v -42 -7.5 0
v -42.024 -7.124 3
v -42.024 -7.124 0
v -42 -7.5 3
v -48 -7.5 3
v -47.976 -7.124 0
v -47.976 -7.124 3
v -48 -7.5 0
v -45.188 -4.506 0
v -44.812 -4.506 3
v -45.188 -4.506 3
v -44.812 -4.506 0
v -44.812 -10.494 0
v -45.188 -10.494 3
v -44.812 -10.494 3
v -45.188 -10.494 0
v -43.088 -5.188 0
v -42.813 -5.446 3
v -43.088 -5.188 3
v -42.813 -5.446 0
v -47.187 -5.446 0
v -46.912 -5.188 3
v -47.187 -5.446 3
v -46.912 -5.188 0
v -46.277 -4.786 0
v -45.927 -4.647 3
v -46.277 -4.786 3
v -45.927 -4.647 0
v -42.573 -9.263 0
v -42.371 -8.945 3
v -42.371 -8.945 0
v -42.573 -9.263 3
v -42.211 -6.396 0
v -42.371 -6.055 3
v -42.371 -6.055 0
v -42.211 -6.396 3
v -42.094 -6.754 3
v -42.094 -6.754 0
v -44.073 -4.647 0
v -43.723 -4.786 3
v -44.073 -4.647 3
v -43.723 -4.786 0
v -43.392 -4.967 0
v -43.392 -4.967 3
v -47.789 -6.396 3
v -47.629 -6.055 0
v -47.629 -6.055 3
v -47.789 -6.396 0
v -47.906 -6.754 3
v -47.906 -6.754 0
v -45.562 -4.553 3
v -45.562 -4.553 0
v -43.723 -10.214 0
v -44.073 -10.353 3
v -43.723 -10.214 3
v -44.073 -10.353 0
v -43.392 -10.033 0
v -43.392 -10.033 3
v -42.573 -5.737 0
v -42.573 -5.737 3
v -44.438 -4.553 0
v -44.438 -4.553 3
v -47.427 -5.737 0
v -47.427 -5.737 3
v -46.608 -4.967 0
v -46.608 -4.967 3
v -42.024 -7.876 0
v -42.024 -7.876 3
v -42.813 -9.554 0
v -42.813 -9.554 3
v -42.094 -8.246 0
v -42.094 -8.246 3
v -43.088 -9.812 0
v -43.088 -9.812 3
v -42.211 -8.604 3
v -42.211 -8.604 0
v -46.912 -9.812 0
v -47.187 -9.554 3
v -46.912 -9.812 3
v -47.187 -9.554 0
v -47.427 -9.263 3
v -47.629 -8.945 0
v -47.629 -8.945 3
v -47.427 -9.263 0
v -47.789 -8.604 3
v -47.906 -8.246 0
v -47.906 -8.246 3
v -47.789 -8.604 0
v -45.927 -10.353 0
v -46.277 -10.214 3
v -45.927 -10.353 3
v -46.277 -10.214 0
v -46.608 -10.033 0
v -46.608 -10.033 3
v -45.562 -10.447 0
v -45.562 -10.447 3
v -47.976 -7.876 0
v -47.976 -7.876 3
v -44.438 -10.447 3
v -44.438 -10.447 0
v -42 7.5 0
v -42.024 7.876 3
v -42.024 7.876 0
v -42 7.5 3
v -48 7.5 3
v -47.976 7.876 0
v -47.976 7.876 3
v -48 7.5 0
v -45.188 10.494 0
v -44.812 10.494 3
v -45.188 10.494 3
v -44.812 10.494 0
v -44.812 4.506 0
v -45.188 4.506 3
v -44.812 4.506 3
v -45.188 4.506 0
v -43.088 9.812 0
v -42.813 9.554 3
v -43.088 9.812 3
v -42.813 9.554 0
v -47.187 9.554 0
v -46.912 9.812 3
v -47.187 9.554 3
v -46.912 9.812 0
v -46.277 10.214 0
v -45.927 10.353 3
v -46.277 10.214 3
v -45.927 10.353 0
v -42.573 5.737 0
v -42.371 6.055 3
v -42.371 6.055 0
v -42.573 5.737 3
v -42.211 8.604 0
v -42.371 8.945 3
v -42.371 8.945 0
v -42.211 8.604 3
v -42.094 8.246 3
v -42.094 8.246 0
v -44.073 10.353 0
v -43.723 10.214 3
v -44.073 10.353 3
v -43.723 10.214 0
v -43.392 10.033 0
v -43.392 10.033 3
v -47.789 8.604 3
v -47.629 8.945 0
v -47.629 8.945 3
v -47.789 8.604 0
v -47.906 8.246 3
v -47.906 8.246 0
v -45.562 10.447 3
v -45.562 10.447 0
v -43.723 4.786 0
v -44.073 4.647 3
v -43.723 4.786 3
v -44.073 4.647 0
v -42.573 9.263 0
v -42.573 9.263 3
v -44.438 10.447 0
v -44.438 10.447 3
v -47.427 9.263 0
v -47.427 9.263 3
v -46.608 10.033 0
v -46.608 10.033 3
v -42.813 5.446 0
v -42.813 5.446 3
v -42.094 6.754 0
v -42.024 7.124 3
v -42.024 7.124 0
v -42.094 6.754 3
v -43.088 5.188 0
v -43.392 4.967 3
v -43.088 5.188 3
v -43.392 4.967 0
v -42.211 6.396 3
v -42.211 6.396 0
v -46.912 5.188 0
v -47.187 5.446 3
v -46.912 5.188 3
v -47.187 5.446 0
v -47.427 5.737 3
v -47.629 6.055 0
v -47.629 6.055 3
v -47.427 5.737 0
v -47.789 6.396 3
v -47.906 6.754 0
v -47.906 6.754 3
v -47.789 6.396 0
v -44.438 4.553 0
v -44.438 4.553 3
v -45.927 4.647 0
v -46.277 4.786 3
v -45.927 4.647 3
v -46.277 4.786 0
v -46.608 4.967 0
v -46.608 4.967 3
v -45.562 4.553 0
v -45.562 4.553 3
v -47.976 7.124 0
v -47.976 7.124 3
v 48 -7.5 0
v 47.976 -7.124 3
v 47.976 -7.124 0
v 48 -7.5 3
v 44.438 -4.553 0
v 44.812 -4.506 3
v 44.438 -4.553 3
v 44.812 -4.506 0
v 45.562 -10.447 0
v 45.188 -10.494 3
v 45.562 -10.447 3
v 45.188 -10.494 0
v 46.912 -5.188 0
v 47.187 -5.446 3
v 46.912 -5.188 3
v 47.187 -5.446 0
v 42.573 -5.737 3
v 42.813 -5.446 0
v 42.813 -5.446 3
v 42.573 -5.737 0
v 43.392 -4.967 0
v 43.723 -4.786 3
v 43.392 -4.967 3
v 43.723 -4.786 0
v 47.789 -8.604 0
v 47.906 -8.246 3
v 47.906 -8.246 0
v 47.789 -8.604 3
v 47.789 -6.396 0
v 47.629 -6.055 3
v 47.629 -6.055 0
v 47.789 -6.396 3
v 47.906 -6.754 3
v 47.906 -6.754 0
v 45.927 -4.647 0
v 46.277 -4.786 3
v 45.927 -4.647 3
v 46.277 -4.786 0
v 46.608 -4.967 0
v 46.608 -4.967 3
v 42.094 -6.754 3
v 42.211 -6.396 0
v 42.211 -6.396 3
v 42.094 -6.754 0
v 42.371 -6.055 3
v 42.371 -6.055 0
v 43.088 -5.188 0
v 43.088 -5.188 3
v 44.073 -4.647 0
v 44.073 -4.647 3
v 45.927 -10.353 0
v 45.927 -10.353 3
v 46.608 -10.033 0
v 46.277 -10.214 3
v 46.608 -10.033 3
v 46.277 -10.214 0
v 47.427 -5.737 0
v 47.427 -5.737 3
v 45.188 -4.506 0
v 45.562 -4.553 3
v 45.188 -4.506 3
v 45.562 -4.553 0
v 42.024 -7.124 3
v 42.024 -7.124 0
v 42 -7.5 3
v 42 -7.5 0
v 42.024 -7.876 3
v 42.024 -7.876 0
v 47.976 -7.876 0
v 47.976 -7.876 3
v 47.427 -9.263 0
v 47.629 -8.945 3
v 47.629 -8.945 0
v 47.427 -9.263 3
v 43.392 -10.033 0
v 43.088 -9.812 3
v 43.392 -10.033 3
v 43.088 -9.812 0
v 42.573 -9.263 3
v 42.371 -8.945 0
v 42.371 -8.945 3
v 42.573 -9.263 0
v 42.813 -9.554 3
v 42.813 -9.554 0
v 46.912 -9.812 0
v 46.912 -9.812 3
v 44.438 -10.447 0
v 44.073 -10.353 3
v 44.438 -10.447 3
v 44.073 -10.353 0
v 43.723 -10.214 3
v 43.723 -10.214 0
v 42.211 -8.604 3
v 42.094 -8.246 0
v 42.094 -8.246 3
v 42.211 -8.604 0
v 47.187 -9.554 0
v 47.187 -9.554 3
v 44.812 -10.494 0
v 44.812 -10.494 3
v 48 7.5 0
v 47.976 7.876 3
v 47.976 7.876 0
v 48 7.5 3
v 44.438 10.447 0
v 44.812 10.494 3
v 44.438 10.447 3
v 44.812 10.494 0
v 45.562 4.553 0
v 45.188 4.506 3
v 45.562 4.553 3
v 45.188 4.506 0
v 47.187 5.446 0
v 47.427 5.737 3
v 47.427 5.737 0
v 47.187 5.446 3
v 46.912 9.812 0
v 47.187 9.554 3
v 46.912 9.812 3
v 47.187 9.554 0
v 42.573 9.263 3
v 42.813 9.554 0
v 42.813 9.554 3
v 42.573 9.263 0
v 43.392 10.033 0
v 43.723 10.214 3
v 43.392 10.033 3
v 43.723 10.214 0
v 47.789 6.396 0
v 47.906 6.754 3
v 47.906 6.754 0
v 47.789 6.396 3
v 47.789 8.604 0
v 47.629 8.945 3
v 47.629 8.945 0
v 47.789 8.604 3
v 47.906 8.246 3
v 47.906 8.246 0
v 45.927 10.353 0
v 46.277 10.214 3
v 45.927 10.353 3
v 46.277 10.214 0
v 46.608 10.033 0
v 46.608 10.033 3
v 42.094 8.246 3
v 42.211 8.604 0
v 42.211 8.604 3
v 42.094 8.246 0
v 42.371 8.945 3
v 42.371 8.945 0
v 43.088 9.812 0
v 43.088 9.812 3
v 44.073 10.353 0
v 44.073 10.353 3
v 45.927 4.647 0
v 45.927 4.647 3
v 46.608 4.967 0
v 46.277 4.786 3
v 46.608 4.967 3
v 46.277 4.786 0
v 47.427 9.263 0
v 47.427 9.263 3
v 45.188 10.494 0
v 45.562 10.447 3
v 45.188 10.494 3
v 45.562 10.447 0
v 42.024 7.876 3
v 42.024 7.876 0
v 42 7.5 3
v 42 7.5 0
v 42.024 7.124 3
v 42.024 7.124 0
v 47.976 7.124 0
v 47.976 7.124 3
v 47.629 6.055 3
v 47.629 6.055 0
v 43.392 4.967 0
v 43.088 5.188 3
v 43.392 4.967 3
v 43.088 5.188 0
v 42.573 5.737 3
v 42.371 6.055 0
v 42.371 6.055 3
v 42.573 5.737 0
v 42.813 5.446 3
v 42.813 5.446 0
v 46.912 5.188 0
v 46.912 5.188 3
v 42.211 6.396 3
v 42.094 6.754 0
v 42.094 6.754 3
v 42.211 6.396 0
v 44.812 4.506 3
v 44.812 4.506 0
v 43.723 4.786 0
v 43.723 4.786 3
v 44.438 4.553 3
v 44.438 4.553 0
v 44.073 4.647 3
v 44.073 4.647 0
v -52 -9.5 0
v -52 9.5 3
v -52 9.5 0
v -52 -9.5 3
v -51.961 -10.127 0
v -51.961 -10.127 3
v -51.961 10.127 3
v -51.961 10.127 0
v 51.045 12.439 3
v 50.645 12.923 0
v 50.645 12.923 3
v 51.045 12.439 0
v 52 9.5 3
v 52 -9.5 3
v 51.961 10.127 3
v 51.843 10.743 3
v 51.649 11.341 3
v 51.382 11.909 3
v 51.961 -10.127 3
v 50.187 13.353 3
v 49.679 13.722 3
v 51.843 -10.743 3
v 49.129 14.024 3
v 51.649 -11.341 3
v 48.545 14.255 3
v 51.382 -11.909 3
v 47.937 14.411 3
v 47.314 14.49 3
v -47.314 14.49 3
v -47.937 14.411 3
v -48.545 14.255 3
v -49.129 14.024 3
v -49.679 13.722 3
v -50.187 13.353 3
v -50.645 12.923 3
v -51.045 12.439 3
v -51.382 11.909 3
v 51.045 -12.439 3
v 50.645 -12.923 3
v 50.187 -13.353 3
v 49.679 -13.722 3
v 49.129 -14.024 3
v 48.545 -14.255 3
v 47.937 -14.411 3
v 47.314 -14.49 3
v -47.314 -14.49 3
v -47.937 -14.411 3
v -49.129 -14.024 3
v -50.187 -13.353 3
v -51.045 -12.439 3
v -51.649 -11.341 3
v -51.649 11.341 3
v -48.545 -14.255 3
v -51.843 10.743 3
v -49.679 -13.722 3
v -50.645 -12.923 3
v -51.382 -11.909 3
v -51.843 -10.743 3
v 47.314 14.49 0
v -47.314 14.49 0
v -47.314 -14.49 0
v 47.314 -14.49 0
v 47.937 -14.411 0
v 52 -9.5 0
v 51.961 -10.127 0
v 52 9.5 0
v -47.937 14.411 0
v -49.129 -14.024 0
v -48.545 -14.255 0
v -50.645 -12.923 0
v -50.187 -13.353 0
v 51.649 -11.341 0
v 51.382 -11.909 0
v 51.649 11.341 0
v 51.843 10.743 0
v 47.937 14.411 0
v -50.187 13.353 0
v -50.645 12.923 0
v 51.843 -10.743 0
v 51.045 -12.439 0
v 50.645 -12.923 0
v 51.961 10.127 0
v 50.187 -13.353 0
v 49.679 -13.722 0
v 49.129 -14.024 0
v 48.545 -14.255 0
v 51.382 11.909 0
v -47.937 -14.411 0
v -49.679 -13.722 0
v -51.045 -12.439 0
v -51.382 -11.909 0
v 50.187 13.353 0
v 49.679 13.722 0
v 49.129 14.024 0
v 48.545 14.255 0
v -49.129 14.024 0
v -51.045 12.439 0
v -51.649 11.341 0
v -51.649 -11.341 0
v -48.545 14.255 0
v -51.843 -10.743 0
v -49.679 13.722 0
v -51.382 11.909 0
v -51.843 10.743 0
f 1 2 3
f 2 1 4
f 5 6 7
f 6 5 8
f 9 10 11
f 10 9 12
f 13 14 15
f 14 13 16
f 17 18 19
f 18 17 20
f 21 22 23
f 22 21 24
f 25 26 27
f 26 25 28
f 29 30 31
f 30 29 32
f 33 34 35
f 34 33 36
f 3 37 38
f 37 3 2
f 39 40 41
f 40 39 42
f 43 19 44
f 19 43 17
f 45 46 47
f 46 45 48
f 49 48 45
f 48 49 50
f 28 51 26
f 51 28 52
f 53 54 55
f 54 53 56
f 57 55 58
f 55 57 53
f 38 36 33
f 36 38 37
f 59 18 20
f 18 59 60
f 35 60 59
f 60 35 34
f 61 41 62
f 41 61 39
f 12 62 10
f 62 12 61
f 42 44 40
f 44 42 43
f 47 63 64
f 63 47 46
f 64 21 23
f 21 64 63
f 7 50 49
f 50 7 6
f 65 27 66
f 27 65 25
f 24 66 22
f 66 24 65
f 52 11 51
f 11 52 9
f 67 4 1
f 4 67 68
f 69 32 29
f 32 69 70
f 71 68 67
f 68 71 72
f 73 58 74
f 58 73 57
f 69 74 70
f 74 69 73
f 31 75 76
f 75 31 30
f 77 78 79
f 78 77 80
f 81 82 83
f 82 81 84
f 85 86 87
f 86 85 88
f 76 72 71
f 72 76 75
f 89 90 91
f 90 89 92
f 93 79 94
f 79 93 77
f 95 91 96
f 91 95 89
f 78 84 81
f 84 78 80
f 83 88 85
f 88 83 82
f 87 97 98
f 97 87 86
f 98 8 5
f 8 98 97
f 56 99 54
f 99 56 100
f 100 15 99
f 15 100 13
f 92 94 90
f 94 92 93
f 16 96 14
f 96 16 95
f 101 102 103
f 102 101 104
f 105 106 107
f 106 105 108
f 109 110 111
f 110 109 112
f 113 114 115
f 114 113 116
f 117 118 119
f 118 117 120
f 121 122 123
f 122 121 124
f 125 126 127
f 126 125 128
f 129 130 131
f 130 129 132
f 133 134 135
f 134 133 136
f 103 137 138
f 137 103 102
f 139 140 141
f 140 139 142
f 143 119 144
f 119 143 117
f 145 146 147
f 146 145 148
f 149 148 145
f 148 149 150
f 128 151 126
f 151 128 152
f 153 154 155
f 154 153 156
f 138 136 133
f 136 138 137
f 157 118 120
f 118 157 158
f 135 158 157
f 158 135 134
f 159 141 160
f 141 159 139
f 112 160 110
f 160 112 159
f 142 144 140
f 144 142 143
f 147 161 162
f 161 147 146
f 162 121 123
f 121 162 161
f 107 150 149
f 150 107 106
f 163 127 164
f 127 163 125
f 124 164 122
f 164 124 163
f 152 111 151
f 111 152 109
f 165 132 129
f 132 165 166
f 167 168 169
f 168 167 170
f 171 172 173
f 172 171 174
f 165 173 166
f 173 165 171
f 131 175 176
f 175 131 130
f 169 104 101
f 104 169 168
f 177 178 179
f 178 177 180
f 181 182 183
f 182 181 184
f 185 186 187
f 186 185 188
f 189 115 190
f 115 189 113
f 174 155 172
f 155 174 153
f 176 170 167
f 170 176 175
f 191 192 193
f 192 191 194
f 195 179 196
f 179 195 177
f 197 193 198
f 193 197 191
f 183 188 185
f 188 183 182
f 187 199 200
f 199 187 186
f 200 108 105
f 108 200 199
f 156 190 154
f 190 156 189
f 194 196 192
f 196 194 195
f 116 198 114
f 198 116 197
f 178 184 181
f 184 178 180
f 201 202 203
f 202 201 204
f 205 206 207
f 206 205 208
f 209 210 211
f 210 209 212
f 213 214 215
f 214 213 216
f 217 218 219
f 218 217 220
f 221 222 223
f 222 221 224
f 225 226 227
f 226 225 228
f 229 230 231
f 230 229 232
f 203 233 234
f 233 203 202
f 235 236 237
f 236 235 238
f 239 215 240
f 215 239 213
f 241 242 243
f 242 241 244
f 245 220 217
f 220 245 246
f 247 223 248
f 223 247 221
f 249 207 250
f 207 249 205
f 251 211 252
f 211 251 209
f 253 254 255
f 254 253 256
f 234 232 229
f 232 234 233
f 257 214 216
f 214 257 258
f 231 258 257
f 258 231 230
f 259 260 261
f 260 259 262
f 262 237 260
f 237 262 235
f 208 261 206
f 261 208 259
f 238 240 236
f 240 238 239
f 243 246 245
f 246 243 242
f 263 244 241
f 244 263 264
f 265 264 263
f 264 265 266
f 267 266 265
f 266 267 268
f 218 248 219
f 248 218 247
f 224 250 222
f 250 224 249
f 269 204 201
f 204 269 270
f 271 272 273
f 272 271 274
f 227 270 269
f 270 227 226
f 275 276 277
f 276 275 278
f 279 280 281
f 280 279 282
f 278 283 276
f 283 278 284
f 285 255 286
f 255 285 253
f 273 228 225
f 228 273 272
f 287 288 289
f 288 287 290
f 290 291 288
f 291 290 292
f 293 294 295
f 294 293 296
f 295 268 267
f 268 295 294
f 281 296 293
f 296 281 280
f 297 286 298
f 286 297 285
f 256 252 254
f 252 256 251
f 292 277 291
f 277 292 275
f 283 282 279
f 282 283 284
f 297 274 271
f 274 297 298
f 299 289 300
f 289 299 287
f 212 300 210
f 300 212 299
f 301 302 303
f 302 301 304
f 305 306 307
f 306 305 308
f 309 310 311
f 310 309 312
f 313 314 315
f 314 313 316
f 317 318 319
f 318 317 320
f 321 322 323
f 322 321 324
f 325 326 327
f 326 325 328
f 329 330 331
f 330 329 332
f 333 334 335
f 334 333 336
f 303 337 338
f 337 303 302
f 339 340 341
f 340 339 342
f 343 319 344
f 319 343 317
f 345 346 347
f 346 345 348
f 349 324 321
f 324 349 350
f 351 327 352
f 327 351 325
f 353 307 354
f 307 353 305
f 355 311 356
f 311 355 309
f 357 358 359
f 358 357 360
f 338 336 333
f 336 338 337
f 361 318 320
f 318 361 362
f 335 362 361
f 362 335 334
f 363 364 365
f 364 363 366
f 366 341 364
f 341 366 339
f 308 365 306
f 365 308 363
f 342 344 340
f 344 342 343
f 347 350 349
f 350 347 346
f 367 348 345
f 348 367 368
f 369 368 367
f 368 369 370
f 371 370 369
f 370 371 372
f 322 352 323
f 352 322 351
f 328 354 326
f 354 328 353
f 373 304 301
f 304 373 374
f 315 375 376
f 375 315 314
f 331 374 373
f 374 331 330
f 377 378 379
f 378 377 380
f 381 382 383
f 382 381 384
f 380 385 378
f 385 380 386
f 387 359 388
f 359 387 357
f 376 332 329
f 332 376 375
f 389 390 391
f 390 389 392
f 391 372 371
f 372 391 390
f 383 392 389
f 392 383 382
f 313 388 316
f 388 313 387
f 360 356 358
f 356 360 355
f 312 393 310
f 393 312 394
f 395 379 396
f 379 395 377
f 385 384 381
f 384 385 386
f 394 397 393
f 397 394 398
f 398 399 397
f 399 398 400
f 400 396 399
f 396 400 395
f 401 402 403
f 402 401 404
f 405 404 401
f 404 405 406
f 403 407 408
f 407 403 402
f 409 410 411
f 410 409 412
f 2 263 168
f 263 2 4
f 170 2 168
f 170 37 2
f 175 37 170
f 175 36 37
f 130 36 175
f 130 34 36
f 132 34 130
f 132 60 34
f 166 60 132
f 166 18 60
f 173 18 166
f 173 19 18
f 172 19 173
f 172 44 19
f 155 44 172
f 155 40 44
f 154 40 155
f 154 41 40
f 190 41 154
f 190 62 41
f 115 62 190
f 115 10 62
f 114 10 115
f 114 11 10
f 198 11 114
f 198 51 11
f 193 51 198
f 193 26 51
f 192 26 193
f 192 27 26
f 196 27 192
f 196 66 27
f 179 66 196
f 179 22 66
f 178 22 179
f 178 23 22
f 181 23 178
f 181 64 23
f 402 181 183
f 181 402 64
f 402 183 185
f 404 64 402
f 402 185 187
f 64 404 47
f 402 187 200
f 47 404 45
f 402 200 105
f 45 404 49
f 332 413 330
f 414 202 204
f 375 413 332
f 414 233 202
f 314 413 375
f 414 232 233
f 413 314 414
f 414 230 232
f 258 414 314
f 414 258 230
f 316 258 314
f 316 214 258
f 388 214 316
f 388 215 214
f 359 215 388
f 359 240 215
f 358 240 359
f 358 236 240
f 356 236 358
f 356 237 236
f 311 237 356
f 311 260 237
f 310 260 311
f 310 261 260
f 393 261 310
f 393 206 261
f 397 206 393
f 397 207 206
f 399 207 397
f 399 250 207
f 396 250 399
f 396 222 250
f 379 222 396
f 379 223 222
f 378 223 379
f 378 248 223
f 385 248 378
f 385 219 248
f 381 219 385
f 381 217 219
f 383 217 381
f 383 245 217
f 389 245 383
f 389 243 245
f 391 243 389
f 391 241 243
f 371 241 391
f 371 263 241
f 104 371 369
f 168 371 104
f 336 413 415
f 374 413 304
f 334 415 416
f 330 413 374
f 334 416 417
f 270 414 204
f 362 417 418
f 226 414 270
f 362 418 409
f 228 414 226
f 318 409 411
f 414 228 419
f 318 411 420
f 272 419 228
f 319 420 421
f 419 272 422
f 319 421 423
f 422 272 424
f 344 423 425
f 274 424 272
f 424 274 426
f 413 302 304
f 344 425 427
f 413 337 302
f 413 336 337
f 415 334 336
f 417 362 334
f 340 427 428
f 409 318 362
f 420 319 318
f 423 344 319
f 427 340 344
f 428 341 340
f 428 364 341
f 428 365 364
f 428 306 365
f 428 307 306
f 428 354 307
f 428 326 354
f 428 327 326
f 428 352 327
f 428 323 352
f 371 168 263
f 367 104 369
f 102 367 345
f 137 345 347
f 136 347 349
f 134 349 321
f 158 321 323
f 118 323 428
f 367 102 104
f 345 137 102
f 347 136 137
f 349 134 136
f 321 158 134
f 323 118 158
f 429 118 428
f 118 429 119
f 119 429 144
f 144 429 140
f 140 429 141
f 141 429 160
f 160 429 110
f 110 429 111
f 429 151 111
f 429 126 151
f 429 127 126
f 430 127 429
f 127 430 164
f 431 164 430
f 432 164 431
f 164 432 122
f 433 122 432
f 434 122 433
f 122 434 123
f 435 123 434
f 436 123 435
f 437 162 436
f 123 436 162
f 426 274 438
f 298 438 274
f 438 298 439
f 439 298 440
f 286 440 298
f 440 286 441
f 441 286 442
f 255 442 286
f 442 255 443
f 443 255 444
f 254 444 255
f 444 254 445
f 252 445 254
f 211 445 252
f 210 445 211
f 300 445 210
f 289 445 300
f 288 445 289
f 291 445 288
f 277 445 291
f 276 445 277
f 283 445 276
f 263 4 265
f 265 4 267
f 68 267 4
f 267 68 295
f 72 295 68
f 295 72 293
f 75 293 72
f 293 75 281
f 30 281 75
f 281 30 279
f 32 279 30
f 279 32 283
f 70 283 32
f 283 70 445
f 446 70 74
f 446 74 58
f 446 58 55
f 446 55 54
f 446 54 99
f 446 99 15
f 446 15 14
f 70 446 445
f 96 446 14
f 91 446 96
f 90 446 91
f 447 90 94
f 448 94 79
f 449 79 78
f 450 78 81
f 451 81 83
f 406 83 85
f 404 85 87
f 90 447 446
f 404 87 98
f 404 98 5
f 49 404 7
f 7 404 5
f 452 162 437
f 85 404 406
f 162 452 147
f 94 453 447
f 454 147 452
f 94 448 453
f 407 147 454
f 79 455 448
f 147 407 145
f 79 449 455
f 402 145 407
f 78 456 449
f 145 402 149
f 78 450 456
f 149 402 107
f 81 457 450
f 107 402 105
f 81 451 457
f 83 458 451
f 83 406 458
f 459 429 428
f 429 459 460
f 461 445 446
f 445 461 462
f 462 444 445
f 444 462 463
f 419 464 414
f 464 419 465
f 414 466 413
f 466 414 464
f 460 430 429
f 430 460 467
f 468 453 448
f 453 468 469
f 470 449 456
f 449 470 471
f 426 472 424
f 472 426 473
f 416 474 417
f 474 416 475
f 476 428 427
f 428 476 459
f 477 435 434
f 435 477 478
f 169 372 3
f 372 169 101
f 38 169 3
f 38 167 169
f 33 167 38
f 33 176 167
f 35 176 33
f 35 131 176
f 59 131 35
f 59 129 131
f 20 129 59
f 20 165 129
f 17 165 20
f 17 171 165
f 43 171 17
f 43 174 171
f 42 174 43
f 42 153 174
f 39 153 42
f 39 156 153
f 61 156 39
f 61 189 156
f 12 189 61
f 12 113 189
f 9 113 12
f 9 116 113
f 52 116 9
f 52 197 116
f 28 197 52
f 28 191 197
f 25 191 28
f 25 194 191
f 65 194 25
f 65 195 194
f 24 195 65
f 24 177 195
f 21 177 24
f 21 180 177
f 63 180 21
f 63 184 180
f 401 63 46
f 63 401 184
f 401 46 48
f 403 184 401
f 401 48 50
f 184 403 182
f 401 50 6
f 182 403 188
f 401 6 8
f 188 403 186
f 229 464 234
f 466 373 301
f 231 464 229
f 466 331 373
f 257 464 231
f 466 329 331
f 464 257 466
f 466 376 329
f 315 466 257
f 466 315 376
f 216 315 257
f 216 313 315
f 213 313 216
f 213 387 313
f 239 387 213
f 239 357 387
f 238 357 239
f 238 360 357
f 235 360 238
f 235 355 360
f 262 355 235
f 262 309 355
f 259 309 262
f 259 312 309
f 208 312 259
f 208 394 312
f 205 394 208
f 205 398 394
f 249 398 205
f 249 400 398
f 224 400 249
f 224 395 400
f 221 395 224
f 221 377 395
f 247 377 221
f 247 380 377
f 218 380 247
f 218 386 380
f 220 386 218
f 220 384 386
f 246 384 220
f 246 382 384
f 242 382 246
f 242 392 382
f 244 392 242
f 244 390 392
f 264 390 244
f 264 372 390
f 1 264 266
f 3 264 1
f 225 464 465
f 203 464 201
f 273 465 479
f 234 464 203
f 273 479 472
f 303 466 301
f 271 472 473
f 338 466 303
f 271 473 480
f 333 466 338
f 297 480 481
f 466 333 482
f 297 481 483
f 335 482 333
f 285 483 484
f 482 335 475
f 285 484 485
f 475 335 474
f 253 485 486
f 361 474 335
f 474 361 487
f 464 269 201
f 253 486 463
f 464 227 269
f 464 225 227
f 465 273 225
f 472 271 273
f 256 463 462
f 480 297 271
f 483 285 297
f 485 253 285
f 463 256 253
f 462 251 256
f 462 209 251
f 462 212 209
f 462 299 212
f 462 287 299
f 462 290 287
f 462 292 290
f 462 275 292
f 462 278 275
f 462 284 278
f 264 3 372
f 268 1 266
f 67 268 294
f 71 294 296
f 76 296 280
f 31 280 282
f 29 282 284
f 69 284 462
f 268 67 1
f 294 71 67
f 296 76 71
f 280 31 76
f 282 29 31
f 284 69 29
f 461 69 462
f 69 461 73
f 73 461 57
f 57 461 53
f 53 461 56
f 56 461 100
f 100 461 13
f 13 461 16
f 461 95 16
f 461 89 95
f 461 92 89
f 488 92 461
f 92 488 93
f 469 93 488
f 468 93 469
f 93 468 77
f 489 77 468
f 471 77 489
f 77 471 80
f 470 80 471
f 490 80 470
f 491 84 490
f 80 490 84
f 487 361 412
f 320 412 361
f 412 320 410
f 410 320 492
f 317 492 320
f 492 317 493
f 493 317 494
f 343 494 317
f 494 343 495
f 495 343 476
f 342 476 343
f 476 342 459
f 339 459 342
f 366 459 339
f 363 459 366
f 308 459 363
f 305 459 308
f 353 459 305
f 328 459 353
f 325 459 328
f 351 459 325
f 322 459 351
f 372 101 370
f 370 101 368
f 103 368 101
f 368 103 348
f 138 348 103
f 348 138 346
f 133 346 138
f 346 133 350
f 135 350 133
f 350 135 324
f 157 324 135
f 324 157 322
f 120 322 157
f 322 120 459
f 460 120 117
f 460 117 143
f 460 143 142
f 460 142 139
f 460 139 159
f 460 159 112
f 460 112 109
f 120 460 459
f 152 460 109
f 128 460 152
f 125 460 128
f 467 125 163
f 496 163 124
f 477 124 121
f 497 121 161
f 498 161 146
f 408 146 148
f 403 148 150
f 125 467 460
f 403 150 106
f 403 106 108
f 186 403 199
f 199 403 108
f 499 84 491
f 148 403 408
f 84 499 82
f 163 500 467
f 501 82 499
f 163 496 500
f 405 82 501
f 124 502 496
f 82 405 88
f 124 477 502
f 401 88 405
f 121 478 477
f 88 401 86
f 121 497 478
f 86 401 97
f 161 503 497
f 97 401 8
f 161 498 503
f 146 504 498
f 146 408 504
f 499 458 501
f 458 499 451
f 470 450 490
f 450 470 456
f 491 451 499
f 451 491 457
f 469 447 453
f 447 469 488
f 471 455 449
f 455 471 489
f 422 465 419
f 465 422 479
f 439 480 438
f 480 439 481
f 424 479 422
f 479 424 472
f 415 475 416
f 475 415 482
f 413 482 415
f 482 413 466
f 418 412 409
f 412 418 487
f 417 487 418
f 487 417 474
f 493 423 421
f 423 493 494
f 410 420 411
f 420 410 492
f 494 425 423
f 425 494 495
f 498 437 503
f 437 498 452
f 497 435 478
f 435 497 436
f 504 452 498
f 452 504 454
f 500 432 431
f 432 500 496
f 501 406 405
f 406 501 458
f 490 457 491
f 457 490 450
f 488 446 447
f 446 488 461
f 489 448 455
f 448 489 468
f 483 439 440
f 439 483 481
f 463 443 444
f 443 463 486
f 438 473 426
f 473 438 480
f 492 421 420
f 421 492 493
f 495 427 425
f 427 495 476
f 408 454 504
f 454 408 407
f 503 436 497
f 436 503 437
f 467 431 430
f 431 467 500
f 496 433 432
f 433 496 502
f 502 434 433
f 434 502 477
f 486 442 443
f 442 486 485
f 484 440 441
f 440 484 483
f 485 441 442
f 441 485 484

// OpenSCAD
$fn = 50;


difference() {
	union() {
		hull() {
			translate(v = [-47.0000000000, 9.5000000000, 0]) {
				cylinder(h = 3, r = 5);
			}
			translate(v = [47.0000000000, 9.5000000000, 0]) {
				cylinder(h = 3, r = 5);
			}
			translate(v = [-47.0000000000, -9.5000000000, 0]) {
				cylinder(h = 3, r = 5);
			}
			translate(v = [47.0000000000, -9.5000000000, 0]) {
				cylinder(h = 3, r = 5);
			}
		}
	}
	union() {
		translate(v = [-45.0000000000, -7.5000000000, -100.0000000000]) {
			cylinder(h = 200, r = 3.0000000000);
		}
		translate(v = [-45.0000000000, 7.5000000000, -100.0000000000]) {
			cylinder(h = 200, r = 3.0000000000);
		}
		translate(v = [45.0000000000, -7.5000000000, -100.0000000000]) {
			cylinder(h = 200, r = 3.0000000000);
		}
		translate(v = [45.0000000000, 7.5000000000, -100.0000000000]) {
			cylinder(h = 200, r = 3.0000000000);
		}
	}
}
